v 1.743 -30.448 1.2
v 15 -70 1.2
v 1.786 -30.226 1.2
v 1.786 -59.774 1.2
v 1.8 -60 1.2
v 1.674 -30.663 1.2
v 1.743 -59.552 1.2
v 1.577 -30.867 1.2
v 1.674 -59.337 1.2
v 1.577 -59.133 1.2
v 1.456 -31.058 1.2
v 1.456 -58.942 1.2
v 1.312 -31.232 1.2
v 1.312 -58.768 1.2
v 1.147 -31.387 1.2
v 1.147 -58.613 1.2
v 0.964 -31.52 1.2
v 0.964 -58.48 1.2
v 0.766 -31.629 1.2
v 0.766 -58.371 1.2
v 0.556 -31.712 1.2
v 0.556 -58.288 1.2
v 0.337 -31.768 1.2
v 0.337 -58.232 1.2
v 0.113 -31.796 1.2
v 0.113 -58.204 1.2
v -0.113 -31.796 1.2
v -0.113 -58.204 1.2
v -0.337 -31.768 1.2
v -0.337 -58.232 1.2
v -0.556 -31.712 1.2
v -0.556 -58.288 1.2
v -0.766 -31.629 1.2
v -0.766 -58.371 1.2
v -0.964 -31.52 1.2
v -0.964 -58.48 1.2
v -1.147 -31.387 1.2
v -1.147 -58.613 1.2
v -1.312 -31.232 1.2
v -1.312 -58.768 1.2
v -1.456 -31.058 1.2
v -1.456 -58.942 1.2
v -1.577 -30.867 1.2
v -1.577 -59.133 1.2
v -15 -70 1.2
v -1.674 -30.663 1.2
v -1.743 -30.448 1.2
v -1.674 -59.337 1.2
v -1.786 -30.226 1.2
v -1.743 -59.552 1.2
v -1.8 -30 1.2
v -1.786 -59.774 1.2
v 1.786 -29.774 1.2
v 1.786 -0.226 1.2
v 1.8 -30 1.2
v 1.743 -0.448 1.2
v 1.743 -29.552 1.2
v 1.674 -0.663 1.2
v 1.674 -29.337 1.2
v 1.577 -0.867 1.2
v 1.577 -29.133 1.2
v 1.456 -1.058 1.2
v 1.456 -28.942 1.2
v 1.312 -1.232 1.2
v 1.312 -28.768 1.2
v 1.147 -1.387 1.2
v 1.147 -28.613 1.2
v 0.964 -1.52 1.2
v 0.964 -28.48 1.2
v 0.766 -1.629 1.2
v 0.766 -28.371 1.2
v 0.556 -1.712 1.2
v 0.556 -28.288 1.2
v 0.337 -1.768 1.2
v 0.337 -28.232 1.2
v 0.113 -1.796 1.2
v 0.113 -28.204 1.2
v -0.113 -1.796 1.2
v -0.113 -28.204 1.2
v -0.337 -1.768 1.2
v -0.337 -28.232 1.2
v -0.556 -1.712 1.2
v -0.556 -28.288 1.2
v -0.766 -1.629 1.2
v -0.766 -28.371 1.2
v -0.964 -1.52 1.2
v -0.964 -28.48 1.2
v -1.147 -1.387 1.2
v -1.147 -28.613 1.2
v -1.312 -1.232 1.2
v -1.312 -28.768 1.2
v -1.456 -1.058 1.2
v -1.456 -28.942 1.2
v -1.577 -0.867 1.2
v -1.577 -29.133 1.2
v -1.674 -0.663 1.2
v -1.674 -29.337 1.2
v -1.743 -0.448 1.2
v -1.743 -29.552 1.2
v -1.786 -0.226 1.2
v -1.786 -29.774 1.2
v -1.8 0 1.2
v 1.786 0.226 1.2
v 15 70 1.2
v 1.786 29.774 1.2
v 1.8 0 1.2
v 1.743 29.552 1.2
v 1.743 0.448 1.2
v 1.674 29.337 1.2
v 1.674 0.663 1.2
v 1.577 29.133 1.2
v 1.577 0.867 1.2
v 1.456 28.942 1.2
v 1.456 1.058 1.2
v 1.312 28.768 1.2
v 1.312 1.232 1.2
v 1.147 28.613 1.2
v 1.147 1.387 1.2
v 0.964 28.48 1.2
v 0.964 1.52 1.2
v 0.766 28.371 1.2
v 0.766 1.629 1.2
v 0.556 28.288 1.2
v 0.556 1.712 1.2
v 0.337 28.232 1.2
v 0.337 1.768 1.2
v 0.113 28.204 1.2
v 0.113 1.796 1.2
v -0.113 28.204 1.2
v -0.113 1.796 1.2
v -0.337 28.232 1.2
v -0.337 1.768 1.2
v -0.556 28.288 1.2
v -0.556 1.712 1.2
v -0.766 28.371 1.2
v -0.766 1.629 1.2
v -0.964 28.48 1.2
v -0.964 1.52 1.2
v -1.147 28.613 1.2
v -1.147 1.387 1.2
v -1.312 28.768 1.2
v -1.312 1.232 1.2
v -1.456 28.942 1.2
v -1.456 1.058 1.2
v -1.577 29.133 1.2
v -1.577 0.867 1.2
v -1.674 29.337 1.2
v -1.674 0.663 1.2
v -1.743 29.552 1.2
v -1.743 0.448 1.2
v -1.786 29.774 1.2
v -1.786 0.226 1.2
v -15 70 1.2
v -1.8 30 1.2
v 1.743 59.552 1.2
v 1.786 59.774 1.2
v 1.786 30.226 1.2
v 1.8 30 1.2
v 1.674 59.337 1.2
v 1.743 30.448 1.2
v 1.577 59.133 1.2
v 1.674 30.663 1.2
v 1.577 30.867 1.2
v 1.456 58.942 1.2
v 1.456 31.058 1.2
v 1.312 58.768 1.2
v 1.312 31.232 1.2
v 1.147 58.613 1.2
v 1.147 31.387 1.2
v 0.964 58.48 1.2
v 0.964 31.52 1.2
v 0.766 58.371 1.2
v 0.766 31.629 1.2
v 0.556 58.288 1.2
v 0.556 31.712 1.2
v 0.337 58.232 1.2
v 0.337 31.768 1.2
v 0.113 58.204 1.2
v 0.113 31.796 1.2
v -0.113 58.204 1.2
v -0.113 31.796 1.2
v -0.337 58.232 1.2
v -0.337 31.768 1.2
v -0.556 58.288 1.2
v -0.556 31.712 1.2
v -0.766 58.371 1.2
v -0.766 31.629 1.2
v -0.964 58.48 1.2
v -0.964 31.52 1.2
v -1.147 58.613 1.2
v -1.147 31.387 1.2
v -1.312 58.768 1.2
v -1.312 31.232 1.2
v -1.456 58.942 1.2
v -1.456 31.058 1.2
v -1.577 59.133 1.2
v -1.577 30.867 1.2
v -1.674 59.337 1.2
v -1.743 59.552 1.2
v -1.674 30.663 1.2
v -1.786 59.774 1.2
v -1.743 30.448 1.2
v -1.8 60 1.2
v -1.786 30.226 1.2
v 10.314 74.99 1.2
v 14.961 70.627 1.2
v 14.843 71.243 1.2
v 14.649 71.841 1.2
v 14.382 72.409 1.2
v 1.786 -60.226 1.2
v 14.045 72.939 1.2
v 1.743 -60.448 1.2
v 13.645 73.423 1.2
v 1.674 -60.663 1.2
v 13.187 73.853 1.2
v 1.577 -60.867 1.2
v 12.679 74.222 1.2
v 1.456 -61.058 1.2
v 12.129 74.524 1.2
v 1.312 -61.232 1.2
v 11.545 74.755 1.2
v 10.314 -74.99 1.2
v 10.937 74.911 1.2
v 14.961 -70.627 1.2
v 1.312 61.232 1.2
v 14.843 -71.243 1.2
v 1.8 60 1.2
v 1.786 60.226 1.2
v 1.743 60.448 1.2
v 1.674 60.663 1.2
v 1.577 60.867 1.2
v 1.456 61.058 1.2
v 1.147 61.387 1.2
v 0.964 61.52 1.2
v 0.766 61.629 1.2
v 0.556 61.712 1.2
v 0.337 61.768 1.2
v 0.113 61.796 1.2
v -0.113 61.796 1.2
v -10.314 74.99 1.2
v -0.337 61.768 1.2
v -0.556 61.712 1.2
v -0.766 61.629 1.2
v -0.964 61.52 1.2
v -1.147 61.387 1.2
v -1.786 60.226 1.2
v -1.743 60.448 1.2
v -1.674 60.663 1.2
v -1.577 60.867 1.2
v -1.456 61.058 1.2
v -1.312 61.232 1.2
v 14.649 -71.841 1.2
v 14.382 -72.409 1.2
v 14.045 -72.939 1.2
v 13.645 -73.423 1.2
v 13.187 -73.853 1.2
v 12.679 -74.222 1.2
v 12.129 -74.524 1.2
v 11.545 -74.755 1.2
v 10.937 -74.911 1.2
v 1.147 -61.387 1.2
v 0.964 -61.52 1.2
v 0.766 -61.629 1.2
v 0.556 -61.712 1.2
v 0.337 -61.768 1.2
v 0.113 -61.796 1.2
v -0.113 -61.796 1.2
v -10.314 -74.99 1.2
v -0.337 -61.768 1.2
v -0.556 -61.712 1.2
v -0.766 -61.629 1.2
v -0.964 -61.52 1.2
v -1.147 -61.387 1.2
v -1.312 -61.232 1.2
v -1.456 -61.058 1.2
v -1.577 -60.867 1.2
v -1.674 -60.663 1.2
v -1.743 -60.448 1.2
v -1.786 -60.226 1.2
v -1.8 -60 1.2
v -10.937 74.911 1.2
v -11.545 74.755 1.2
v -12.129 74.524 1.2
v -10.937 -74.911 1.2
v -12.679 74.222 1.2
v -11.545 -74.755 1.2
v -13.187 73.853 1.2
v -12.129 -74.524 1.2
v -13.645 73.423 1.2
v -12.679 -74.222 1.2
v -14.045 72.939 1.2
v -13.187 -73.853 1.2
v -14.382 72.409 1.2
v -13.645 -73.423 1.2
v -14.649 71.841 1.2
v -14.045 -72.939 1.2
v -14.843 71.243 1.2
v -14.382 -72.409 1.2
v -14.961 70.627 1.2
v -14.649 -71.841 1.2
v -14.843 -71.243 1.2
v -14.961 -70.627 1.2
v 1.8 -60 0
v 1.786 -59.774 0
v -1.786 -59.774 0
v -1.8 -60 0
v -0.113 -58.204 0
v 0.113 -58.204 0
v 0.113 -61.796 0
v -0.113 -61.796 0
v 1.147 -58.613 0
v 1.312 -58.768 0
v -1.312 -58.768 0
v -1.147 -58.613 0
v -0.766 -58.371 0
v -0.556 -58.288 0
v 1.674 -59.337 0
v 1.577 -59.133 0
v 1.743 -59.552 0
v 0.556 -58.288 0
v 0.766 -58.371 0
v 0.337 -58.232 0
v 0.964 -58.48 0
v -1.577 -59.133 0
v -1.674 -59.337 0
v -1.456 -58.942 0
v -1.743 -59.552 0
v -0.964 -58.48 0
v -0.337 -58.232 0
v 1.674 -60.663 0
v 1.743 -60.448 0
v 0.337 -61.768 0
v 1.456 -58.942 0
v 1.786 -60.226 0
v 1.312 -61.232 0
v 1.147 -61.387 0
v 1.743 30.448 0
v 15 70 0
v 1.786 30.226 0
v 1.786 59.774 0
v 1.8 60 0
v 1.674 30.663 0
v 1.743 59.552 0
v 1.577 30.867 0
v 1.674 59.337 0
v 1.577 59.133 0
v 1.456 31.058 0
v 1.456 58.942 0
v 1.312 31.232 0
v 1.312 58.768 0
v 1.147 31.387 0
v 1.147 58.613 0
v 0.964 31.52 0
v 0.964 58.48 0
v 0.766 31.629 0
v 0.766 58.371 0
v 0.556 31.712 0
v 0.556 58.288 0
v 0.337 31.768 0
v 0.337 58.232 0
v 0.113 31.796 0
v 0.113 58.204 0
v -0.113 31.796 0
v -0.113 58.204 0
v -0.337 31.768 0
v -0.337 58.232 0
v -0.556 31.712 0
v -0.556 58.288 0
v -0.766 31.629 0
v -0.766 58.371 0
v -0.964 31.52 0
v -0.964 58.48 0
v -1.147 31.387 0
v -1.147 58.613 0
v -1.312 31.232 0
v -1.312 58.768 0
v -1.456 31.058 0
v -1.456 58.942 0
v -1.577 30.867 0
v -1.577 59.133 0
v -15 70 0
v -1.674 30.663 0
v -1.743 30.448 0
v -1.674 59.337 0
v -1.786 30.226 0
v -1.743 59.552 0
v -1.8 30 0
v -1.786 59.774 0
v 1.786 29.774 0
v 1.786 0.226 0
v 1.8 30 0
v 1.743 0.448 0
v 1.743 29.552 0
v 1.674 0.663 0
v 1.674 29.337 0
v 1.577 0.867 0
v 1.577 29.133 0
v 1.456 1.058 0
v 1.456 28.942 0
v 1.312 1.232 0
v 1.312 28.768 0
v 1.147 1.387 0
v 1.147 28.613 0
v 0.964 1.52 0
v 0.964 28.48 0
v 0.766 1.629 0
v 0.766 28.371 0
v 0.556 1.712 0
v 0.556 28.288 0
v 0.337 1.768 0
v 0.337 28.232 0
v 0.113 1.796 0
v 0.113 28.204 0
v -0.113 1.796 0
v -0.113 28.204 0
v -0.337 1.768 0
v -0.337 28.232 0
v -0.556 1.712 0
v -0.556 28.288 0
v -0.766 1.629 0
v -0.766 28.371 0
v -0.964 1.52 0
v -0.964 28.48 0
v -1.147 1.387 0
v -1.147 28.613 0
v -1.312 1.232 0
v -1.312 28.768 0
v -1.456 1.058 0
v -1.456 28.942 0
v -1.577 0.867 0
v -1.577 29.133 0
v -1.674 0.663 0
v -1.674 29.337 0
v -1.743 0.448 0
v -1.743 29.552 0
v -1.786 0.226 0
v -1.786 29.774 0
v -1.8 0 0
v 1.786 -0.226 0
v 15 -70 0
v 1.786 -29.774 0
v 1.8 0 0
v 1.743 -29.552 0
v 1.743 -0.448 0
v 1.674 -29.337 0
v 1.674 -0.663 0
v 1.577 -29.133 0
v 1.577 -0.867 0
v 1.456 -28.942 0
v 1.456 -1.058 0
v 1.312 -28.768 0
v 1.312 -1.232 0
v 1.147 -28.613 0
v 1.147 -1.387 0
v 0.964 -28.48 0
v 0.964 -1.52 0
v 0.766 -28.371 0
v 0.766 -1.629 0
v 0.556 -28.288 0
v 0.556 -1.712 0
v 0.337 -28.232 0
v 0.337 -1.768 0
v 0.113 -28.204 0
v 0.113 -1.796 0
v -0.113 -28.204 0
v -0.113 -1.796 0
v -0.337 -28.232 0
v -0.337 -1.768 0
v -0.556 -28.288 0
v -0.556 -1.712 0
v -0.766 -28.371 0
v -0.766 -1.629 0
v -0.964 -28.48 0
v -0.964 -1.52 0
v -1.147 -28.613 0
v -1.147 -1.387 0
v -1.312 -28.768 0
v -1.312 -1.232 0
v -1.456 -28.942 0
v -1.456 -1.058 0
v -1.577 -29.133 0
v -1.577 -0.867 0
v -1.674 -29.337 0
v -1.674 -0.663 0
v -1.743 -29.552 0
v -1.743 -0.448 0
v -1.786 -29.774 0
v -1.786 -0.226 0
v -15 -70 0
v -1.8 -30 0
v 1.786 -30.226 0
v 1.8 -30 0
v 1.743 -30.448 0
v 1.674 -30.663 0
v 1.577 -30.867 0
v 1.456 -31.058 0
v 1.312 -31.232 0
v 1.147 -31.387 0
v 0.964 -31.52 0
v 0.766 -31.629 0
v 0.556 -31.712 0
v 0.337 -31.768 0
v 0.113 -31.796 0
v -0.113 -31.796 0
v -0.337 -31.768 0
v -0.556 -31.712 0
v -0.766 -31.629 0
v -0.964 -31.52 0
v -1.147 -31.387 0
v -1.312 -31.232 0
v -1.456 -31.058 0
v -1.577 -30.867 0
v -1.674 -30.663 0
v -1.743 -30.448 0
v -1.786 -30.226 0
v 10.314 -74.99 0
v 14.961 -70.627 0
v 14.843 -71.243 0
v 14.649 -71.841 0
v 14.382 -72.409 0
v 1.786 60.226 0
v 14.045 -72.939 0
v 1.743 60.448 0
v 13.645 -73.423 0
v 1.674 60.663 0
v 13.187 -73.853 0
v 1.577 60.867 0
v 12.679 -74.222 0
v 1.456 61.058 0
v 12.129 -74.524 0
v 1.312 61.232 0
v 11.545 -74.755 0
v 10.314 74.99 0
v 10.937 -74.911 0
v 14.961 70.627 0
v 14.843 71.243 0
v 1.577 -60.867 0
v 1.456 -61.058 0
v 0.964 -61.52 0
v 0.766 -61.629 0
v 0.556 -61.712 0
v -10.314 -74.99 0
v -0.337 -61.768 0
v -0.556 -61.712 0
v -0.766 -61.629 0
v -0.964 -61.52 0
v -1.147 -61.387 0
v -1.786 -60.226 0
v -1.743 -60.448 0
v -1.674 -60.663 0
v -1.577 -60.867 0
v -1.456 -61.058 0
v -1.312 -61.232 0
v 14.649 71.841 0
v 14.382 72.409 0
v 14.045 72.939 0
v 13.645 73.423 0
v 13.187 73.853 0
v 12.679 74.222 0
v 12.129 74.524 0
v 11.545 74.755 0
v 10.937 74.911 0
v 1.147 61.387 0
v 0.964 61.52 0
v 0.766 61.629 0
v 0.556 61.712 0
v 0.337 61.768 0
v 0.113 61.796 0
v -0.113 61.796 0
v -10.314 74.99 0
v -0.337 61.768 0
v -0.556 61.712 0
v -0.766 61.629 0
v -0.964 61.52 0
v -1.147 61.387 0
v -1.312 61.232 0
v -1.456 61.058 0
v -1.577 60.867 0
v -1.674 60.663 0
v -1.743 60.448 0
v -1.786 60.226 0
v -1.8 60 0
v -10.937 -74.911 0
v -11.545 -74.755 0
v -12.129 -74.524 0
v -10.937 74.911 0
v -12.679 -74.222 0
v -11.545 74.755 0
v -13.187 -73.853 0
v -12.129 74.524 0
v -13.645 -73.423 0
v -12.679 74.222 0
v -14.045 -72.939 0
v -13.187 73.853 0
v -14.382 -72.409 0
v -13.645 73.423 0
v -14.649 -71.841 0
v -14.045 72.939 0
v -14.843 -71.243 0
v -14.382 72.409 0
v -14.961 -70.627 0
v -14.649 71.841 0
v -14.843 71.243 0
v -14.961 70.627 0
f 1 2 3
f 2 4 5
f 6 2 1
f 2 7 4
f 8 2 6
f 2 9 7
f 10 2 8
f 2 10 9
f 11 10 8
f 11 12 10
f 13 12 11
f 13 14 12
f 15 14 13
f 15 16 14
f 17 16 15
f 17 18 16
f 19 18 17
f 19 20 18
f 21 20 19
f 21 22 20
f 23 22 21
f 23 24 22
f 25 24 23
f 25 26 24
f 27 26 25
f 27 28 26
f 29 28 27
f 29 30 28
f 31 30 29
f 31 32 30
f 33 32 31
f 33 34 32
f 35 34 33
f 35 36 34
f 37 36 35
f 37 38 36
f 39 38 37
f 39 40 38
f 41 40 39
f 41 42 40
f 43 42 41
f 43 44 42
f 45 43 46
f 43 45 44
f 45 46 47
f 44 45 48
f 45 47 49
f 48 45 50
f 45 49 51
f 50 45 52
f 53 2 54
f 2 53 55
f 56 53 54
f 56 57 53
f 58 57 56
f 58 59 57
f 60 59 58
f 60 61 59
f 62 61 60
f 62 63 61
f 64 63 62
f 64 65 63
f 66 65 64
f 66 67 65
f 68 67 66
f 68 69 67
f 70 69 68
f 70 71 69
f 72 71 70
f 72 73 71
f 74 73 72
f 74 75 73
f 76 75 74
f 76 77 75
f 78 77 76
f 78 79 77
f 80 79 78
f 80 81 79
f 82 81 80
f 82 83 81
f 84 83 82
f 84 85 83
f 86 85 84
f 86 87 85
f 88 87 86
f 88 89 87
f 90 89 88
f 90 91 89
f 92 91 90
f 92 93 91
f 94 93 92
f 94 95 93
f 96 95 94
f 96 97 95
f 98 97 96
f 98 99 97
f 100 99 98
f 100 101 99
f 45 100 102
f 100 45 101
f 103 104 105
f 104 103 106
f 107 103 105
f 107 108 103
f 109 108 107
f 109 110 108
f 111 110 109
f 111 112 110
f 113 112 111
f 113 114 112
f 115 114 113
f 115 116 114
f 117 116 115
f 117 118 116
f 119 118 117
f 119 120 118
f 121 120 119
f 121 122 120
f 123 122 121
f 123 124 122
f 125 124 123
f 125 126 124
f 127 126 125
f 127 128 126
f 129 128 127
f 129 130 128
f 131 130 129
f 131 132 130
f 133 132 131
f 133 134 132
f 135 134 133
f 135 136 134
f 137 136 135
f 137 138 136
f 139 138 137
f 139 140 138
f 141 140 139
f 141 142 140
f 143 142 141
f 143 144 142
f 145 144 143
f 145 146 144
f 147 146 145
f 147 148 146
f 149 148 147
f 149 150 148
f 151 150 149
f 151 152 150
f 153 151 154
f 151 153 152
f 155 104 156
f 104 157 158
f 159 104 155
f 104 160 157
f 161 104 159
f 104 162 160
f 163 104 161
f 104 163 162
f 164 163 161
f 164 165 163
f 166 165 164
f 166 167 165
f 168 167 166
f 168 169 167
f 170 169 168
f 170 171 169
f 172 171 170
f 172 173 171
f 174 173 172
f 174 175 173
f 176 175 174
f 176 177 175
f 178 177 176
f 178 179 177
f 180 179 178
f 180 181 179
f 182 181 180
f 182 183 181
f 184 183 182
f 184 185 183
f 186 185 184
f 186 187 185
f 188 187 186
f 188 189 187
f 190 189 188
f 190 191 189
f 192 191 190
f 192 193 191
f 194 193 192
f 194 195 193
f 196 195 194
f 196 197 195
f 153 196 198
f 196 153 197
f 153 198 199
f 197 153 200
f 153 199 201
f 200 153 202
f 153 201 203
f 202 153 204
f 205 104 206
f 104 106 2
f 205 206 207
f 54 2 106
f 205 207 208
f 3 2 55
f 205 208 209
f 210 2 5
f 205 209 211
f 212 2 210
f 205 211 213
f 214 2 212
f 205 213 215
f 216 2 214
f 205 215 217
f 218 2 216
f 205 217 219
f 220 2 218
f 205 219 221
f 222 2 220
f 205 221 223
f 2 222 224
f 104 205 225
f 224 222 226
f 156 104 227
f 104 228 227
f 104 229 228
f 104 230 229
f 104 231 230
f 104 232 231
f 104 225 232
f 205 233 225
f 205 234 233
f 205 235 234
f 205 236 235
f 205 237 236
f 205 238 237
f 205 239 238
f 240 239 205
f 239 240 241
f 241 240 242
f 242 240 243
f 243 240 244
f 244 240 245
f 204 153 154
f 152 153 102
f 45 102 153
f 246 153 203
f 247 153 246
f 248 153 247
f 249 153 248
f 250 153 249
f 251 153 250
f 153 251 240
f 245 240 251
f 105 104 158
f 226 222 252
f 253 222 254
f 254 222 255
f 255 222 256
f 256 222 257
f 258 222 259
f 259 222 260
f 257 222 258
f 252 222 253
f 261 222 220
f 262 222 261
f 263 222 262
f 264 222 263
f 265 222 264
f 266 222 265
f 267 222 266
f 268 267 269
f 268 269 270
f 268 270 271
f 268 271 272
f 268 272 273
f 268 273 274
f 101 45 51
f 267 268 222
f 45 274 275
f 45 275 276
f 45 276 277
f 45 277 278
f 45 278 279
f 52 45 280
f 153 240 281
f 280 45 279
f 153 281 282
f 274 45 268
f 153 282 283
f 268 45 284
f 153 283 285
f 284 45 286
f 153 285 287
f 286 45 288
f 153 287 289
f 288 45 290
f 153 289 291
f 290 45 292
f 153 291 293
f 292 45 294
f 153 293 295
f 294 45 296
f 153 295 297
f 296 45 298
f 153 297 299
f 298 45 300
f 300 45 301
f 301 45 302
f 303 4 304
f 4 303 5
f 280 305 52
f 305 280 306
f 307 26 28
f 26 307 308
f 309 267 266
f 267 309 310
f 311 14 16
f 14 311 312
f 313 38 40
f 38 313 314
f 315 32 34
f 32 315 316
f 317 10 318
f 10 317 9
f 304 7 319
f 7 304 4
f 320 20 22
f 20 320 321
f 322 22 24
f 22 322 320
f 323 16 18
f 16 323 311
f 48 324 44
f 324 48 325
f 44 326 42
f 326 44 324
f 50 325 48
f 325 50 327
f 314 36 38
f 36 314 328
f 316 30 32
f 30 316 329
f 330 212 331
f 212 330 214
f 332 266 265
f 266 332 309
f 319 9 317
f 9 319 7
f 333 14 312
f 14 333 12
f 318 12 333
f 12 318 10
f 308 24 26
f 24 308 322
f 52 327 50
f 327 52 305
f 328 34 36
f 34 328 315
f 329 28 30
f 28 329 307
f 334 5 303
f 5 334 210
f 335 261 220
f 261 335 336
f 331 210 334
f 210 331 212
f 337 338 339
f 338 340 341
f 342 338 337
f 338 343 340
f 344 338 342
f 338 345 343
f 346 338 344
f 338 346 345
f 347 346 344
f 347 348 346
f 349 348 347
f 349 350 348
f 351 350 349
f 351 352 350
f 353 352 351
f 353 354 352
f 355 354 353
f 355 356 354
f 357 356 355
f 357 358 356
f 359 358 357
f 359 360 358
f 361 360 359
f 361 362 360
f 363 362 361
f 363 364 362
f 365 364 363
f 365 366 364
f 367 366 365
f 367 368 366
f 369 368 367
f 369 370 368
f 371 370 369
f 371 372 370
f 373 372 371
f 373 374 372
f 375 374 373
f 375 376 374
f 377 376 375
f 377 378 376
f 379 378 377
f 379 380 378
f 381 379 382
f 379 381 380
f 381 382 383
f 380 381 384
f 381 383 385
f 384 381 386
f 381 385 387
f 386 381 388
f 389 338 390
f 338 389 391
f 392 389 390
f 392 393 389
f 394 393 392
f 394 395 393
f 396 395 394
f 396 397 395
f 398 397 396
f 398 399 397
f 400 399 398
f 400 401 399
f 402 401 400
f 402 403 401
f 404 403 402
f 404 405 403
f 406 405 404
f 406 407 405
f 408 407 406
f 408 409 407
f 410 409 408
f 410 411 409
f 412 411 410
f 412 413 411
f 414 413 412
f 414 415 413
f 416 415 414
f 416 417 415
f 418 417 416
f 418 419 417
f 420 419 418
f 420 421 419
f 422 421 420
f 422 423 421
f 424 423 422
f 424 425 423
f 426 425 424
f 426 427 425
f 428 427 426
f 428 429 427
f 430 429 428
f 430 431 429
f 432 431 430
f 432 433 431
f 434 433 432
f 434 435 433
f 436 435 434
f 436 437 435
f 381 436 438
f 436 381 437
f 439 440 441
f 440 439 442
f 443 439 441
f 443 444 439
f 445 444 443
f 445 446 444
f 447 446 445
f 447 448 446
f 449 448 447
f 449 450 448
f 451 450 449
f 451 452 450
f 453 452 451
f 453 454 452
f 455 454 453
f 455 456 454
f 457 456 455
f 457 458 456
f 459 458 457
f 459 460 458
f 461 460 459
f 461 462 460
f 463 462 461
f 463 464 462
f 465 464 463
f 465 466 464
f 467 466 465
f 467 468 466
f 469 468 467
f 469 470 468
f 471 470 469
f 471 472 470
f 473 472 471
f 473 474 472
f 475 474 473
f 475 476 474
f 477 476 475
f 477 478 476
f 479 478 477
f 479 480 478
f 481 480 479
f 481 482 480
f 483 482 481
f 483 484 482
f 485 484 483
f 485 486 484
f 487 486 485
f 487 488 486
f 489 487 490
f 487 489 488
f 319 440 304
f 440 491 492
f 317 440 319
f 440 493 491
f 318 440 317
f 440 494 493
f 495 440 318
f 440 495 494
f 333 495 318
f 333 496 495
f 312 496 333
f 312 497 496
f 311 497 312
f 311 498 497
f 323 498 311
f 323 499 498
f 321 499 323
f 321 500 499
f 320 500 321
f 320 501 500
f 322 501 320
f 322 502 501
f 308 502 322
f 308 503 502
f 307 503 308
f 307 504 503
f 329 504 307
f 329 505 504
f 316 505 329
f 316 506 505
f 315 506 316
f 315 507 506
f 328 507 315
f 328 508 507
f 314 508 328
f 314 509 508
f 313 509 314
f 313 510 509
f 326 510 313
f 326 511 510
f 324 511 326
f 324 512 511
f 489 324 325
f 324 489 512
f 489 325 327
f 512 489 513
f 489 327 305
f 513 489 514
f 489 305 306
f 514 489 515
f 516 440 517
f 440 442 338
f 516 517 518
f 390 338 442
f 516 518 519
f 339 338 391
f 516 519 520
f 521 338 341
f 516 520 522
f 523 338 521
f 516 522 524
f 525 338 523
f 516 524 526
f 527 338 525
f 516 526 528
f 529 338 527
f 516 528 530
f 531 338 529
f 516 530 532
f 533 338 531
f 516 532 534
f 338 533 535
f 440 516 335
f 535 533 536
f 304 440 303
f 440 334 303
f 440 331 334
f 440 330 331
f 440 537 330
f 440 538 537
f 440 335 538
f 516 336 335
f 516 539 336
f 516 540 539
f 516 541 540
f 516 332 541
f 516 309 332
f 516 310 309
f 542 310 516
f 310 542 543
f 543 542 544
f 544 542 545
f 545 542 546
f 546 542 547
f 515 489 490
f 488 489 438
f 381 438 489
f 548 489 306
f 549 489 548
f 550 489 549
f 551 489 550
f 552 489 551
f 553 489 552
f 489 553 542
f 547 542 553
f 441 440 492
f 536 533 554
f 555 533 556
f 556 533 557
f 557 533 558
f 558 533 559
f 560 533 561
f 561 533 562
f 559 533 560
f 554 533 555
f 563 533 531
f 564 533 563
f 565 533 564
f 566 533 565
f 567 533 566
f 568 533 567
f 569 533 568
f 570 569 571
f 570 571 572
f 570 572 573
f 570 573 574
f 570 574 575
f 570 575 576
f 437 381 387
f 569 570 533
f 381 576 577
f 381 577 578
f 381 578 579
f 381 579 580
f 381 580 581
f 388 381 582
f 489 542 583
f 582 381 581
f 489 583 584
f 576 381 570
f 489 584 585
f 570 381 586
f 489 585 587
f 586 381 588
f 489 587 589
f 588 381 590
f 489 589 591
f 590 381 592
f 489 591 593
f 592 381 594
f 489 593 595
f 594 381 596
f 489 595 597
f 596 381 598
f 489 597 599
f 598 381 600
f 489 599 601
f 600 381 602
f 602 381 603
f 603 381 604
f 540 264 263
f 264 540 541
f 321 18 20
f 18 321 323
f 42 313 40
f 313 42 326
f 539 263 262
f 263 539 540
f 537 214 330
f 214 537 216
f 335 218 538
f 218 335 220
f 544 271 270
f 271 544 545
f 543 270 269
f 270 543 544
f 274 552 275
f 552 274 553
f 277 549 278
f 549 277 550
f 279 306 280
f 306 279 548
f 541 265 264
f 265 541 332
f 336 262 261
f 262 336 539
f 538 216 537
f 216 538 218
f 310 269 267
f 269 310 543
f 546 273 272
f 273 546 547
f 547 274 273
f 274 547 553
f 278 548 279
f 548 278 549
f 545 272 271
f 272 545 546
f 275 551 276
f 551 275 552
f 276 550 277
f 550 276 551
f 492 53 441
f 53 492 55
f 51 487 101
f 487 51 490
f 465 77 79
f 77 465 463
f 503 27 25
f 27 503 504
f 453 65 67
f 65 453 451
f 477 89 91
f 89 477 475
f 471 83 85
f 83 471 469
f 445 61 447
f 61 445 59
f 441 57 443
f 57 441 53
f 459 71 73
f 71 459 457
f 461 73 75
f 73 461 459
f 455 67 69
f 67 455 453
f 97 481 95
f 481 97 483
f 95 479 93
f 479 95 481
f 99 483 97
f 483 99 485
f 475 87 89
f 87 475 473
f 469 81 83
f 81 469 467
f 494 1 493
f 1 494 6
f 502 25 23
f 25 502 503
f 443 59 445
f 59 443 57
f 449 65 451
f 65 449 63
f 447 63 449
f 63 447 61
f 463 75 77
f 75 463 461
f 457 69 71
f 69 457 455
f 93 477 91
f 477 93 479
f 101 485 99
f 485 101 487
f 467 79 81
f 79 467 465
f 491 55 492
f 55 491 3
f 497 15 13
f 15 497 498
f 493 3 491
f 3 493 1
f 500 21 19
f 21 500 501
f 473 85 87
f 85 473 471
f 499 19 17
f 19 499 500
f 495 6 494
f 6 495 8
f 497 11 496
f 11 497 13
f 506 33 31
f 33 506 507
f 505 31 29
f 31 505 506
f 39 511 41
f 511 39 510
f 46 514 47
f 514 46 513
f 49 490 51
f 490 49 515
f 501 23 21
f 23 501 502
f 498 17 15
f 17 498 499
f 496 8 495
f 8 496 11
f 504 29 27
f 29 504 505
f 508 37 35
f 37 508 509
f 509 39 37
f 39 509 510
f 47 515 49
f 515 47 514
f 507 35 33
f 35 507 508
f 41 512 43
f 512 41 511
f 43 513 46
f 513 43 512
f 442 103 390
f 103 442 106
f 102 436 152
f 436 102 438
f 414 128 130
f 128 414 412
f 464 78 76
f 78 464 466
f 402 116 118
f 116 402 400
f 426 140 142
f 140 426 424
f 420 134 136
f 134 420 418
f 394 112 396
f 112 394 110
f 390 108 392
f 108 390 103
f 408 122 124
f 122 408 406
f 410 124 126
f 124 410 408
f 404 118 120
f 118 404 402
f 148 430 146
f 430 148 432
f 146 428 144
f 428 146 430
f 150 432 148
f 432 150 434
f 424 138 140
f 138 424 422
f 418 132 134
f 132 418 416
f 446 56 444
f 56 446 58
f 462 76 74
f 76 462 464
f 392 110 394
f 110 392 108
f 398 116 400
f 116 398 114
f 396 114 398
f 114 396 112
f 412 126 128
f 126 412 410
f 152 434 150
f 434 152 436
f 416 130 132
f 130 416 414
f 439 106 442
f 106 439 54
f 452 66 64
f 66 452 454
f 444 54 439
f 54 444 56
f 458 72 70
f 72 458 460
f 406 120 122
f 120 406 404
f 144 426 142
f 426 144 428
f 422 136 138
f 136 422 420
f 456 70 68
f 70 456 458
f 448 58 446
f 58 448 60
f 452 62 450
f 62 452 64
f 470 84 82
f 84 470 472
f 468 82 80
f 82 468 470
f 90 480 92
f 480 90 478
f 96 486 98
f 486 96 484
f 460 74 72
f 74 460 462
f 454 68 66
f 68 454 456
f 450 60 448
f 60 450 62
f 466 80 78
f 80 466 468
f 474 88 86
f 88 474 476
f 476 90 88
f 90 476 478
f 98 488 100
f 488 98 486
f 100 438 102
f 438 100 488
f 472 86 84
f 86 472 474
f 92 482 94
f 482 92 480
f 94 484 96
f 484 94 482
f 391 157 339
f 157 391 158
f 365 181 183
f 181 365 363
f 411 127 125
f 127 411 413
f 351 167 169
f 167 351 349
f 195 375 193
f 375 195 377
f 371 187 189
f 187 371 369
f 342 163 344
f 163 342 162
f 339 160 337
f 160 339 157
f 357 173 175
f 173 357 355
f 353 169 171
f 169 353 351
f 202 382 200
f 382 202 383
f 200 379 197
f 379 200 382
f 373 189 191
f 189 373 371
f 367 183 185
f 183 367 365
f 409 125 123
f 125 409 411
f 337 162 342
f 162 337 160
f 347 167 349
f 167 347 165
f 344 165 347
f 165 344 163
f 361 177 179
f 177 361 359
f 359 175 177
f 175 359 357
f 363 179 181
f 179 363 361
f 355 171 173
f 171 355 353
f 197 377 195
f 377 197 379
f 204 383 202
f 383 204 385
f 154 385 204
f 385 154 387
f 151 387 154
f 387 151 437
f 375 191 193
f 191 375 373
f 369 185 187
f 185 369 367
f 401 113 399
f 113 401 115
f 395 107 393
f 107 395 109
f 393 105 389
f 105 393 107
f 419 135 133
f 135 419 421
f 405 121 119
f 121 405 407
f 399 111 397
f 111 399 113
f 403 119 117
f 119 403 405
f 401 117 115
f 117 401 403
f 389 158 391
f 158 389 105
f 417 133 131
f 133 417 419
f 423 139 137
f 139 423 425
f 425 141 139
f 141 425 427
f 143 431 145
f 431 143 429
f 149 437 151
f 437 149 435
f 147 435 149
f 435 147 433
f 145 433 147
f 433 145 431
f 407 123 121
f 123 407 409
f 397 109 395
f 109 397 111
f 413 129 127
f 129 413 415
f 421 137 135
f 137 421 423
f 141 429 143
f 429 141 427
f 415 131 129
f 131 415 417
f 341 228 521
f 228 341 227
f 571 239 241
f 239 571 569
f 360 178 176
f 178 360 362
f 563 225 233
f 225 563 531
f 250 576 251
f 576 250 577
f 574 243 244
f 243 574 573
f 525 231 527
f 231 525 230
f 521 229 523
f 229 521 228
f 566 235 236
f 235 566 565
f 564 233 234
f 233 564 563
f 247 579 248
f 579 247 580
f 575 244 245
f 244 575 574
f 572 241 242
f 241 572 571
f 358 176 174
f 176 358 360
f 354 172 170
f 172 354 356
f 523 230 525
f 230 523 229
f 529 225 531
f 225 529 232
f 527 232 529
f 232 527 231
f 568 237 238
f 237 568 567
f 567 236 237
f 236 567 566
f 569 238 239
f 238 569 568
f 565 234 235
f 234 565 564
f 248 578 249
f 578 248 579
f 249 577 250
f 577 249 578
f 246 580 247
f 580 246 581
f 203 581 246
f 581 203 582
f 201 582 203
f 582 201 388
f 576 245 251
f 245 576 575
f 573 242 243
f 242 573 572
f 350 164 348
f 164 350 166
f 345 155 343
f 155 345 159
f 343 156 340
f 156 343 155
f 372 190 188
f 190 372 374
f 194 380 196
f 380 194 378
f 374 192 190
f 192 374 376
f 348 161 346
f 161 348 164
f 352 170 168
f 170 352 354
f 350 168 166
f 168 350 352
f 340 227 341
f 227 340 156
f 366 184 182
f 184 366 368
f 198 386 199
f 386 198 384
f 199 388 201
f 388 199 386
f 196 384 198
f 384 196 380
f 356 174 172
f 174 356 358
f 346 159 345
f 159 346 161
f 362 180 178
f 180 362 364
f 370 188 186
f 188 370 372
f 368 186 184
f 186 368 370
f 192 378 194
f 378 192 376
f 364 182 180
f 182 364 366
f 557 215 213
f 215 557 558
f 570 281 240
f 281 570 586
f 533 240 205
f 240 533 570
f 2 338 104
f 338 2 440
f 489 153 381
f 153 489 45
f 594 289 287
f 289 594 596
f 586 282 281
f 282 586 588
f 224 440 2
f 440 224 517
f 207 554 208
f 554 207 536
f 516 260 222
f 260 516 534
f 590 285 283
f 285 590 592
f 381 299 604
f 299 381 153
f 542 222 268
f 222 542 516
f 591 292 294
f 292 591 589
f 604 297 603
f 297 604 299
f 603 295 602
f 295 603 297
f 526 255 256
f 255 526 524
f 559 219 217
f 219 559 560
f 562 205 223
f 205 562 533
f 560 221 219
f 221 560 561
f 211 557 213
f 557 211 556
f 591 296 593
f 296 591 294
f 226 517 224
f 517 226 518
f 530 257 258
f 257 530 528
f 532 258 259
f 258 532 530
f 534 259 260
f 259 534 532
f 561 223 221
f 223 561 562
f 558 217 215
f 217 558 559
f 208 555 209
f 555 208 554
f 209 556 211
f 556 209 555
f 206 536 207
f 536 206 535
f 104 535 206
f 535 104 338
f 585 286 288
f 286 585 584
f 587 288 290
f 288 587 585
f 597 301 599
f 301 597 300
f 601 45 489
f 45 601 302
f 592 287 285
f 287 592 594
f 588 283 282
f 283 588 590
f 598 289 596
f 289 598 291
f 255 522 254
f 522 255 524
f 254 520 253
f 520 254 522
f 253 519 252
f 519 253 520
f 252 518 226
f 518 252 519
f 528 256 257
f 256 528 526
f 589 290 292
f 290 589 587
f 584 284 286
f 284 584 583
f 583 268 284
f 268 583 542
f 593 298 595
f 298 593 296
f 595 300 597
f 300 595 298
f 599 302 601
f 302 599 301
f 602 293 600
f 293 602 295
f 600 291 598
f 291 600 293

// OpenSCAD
$fn = 50;


difference() {
	union() {
		hull() {
			translate(v = [-10.0000000000, 70.0000000000, 0]) {
				cylinder(h = 18, r = 5);
			}
			translate(v = [10.0000000000, 70.0000000000, 0]) {
				cylinder(h = 18, r = 5);
			}
			translate(v = [-10.0000000000, -70.0000000000, 0]) {
				cylinder(h = 18, r = 5);
			}
			translate(v = [10.0000000000, -70.0000000000, 0]) {
				cylinder(h = 18, r = 5);
			}
		}
	}
	union() {
		translate(v = [0, 0, 1.2000000000]) {
			hull() {
				translate(v = [-10.0000000000, 70.0000000000, 0]) {
					cylinder(h = 16.8000000000, r = 3.8000000000);
				}
				translate(v = [10.0000000000, 70.0000000000, 0]) {
					cylinder(h = 16.8000000000, r = 3.8000000000);
				}
				translate(v = [-10.0000000000, -70.0000000000, 0]) {
					cylinder(h = 16.8000000000, r = 3.8000000000);
				}
				translate(v = [10.0000000000, -70.0000000000, 0]) {
					cylinder(h = 16.8000000000, r = 3.8000000000);
				}
			}
		}
		#translate(v = [0.0000000000, -60.0000000000, 0]) {
			cylinder(h = 1.2000000000, r = 1.8000000000);
		}
		#translate(v = [0.0000000000, -30.0000000000, 0]) {
			cylinder(h = 1.2000000000, r = 1.8000000000);
		}
		#cylinder(h = 1.2000000000, r = 1.8000000000);
		#translate(v = [0.0000000000, 30.0000000000, 0]) {
			cylinder(h = 1.2000000000, r = 1.8000000000);
		}
		#translate(v = [0.0000000000, 60.0000000000, 0]) {
			cylinder(h = 1.2000000000, r = 1.8000000000);
		}
		translate(v = [-250.0000000000, -250.0000000000, 1.2000000000]) {
			cube(size = [500, 500, 500]);
		}
		translate(v = [-250.0000000000, -250.0000000000, 1.2000000000]) {
			cube(size = [500, 500, 500]);
		}
		translate(v = [-250.0000000000, -250.0000000000, 1.2000000000]) {
			cube(size = [500, 500, 500]);
		}
	}
}
